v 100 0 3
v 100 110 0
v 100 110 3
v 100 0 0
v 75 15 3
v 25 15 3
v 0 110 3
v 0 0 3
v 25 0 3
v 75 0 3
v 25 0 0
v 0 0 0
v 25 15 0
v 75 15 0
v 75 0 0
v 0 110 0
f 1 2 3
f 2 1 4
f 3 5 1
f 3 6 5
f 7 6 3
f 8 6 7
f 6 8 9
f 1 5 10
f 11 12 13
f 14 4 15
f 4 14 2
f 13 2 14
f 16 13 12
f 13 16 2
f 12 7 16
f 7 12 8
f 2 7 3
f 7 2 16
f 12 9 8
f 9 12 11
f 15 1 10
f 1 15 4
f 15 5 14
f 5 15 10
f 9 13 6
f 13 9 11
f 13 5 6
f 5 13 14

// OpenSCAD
//Este codigo es un modelo 3D del acrilico que usa Corchea: Bot.

//input
//Medidas acrilico
eAc = 3; //espesor del acrilico
aAc = 100; //ancho del acrilico
lAc = 110; //largo del acrilico

//Medidas del gap de insercion
agAc = 50; //ancho del gap de insercion
lgAc = 15; //largo del gap de insercion

//output
insAc = (aAc-agAc)/2; //insercion del acrilico en Lid

//Bot
translate([0,0,0]) 
color("lightblue", alpha = 0.5)
difference(){
    translate([0,0,0]) 
cube([aAc,lAc,eAc]);
    translate([insAc,0,0]) 
cube([agAc,lgAc, eAc]); 
}    
